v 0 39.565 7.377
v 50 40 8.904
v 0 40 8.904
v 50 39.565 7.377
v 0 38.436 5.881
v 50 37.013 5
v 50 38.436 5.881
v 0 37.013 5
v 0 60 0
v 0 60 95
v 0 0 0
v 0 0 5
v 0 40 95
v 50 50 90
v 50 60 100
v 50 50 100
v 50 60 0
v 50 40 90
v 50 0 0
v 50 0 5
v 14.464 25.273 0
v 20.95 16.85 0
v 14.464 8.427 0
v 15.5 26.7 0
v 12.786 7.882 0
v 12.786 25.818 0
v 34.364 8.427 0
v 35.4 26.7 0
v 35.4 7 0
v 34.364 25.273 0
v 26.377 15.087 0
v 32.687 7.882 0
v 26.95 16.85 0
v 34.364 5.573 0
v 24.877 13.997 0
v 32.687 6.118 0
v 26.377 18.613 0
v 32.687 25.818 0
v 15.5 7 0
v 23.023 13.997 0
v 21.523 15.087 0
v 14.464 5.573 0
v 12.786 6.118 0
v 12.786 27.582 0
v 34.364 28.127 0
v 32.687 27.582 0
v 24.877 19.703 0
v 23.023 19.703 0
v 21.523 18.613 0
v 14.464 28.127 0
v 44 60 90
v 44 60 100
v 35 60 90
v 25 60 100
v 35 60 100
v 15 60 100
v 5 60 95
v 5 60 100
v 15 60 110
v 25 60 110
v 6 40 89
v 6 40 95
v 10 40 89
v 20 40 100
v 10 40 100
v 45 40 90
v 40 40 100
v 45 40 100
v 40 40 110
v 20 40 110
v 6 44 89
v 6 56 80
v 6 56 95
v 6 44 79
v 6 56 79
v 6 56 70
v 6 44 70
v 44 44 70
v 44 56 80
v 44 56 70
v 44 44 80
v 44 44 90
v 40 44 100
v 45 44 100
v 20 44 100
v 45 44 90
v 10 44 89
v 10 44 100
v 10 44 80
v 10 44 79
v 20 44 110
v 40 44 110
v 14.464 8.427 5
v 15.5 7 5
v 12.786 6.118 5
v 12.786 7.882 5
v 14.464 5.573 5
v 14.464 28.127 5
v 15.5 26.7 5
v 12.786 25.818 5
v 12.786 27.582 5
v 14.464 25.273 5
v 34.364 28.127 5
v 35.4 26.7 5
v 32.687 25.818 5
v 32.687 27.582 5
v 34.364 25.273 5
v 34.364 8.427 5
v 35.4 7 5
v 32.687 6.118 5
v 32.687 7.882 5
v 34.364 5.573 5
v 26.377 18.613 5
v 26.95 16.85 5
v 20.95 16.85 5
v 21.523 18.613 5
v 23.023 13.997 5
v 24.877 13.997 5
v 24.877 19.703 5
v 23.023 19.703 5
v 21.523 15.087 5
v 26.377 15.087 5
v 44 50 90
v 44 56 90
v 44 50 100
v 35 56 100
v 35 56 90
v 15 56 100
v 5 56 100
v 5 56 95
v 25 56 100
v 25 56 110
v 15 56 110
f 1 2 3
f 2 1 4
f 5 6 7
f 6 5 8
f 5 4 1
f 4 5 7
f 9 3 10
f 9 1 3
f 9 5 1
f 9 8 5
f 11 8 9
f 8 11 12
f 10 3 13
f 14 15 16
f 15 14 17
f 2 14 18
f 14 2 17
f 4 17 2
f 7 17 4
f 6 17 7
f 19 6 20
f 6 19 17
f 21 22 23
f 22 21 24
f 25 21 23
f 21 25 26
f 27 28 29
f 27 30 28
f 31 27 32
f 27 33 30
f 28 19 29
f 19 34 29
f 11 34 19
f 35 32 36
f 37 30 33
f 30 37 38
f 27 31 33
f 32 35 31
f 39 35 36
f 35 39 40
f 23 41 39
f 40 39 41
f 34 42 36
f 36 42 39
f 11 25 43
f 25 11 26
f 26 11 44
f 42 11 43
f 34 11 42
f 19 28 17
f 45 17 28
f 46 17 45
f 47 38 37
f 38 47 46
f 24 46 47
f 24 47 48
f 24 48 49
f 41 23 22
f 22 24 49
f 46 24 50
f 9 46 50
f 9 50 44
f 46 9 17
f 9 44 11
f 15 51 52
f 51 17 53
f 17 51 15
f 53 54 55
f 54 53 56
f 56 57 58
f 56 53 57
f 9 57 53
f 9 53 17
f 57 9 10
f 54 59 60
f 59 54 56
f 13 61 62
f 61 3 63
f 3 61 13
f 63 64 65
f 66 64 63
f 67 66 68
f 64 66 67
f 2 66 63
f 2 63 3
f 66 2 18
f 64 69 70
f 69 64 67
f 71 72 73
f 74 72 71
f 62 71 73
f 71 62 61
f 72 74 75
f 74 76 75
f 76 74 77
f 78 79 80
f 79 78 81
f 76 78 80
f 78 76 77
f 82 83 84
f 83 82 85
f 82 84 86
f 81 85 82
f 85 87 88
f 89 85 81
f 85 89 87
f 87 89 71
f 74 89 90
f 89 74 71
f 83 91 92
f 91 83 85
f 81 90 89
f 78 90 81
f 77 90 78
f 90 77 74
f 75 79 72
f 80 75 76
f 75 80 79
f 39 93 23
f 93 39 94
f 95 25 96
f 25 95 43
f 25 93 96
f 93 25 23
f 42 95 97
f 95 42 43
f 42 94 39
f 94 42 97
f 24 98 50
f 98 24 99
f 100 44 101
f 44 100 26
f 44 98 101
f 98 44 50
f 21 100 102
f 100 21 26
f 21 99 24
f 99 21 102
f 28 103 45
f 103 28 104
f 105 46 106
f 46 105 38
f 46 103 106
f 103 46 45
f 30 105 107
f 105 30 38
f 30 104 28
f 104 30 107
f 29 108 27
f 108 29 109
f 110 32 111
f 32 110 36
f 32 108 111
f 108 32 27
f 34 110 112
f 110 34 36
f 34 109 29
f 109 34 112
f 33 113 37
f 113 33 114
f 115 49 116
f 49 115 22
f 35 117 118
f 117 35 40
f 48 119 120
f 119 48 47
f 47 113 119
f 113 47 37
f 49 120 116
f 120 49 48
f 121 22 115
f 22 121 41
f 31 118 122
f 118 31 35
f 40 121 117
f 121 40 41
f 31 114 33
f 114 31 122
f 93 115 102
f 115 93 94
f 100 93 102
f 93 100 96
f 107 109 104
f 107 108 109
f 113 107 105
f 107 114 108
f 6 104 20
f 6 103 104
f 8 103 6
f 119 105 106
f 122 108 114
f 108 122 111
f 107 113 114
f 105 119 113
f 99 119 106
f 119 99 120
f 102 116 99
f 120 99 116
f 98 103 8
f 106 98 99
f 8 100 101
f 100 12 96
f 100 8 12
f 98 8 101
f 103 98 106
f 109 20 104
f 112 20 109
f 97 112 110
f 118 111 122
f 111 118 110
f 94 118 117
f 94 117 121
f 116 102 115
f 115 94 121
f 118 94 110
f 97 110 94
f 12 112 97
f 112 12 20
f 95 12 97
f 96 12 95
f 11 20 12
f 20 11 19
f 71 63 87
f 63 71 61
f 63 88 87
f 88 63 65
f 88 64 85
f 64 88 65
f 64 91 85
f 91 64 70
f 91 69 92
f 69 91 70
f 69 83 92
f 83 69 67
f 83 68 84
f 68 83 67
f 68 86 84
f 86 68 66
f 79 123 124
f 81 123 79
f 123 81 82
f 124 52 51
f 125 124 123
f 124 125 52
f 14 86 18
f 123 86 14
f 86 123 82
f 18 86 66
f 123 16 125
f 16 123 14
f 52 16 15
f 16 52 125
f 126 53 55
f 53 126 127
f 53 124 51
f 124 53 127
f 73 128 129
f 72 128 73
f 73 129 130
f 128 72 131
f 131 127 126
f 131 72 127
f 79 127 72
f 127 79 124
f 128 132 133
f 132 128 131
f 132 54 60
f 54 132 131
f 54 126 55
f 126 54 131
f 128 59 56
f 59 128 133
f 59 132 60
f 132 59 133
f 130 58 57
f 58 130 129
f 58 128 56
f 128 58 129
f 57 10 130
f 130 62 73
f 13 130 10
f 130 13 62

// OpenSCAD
// file: nutsnbolts/data-access.scad
// Norm Nuts and Bolts - a OpenSCAD library
// Copyright (C) 2012  Johannes Kneer

// This program is free software: you can redistribute it and/or modify
// it under the terms of the GNU General Public License as published by
// the Free Software Foundation, either version 3 of the License, or
// (at your option) any later version.

// This program is distributed in the hope that it will be useful,
// but WITHOUT ANY WARRANTY; without even the implied warranty of
// MERCHANTABILITY or FITNESS FOR A PARTICULAR PURPOSE.  See the
// GNU General Public License for more details.

// You should have received a copy of the GNU General Public License
// along with this program.  If not, see <http://www.gnu.org/licenses/>.


// DATABASE ACCESS FUNCTIONS AND CONSTANTS



// == CONSTANTS ==

// screw table access keys
_NB_S_DESC            = 0;
_NB_S_FAMKEY			    = 1;
_NB_S_LENGTH          = 2;
_NB_S_NOTHREAD_LENGTH = 3;

_NB_F_DESC			      = 0;
_NB_F_OUTER_DIA       = 1;
_NB_F_INNER_DIA       = 2;
_NB_F_LEAD            = 3;
_NB_F_KEY             = 4;
_NB_F_KEY_DEPTH       = 5;
_NB_F_HEAD_HEIGHT     = 6;
_NB_F_HEAD_DIA        = 7;
_NB_F_NUT_KEY         = 8;
_NB_F_NUT_HEIGHT      = 9;
_NB_F_PITCH_FINE      = 10;
_NB_F_PITCH_MEDIUM    = 11;
_NB_F_PITCH_COARSE    = 12;


// == FUNCTIONS ==

// _get_screw("descriptor")   with descriptor = M8x25
//   find the line for a general object in the data matrix

function _get_screw(n) = data_screw[search([n], data_screw)[0]];
function _get_screw_fam(n) = data_screw_fam[search([_get_screw(n)[_NB_S_FAMKEY]], data_screw_fam)[0]];

function _get_fam(n) = data_screw_fam[search([n], data_screw_fam)[0]];


// _get_XXXXX("descriptor") functions
// find a single property in the database

function _get_desc(n)        = _get_screw(n)[_NB_S_DESC];
function _get_famkey(n)         = _get_screw(n)[_NB_S_FAMKEY];
function _get_length(n)      = _get_screw(n)[_NB_S_LENGTH];
function _get_nt_length(n)   = _get_screw(n)[_NB_S_NOTHREAD_LENGTH];

function _get_outer_dia(n)   = _get_screw_fam(n)[_NB_F_OUTER_DIA];
function _get_inner_dia(n)   = _get_screw_fam(n)[_NB_F_INNER_DIA];
function _get_lead(n)        = _get_screw_fam(n)[_NB_F_LEAD];
function _get_head_height(n) = _get_screw_fam(n)[_NB_F_HEAD_HEIGHT];
function _get_head_dia(n)    = _get_screw_fam(n)[_NB_F_HEAD_DIA];
function _get_nut_key(n)     = _get_screw_fam(n)[_NB_F_NUT_KEY];
function _get_nut_height(n)  = _get_screw_fam(n)[_NB_F_NUT_HEIGHT];
function _get_fine_pitch(n)  = _get_screw_fam(n)[_NB_F_PITCH_FINE];
function _get_medium_pitch(n)  = _get_screw_fam(n)[_NB_F_PITCH_MEDIUM];
function _get_coarse_pitch(n)  = _get_screw_fam(n)[_NB_F_PITCH_COARSE];
// file: top_lock.scad
//top_lock();

module top_lock(){
difference(){
    
cube([50,20, 1]);
translate(v = [6,4,-1]){
cube([38,12, 5]);
}
}


cube([10, 4, 10]);
translate(v = [10,0,1]){
cube([10, 4, 20]);
}
translate(v = [20,0,1]){
cube([10, 4, 30]);
}
translate(v = [30,0,1]){
cube([10, 4, 30]);
 }
translate(v = [40,0,1]){
cube([5, 4, 20]);
 }
 
translate(v = [44, 0, 1]){
 cube([6, 10, 10]);
 }
 
translate(v = [44, 10, 1]){
 cube([6, 10, 20]);
 }
 
 
translate(v = [35,16,1]){
cube([10, 4, 10]);
}
translate(v = [25,16,1]){
cube([10, 4, 20]);
 }
translate(v = [15,16,1]){
cube([10, 4, 30]);
 }
translate(v = [5,16,1]){       
cube([10, 4, 20]);
}

cube([6,20,16]);
}
// main file
include <nutsnbolts/cyl_head_bolt.scad>
include <top_lock.scad>

render_thread = "no";
spool_height = 80;



spool_bottom();

module spool_bottom() {
//curve
translate(v = [0,33,0]){
difference(){

cube([50,10, 15]);
translate(v = [-5, 2, 9.65]){
union(){
rotate(a = [0,90,0]){
    cylinder(h = 60, r = 5.1);
  }
translate(v = [0,-3,0]){
cube([60,13, 15]); 
 }
  }
}
}
}

//thing sticking up
translate(v = [0, 40, 0]) {


difference(){
cube([50, 20, spool_height]);

translate(v = [6, 4, 70]){
cube([38, 12, 40]);
}
}

}









//base
difference(){
cube([50, 60, 5]);

translate(v = [-2.1, 4, 0]){


union(){


translate(v = [16.1, 3, 10]) {
screw("M3x10", render_thread);
}

translate(v = [16.1, 22.7, 10] ){
screw("M3x10", render_thread);
}

translate(v = [36, 22.7, 10] ){
screw("M3x10", render_thread);
}

translate(v = [36, 3, 10] ){
screw("M3x10", render_thread);
}
translate(v = [26.05, 12.85, 10]){
    screw("M6x10", render_thread);
    }
}
}
}
//top lock
translate(v = [0, 40, spool_height - 1]) {   
 top_lock();
}
}
